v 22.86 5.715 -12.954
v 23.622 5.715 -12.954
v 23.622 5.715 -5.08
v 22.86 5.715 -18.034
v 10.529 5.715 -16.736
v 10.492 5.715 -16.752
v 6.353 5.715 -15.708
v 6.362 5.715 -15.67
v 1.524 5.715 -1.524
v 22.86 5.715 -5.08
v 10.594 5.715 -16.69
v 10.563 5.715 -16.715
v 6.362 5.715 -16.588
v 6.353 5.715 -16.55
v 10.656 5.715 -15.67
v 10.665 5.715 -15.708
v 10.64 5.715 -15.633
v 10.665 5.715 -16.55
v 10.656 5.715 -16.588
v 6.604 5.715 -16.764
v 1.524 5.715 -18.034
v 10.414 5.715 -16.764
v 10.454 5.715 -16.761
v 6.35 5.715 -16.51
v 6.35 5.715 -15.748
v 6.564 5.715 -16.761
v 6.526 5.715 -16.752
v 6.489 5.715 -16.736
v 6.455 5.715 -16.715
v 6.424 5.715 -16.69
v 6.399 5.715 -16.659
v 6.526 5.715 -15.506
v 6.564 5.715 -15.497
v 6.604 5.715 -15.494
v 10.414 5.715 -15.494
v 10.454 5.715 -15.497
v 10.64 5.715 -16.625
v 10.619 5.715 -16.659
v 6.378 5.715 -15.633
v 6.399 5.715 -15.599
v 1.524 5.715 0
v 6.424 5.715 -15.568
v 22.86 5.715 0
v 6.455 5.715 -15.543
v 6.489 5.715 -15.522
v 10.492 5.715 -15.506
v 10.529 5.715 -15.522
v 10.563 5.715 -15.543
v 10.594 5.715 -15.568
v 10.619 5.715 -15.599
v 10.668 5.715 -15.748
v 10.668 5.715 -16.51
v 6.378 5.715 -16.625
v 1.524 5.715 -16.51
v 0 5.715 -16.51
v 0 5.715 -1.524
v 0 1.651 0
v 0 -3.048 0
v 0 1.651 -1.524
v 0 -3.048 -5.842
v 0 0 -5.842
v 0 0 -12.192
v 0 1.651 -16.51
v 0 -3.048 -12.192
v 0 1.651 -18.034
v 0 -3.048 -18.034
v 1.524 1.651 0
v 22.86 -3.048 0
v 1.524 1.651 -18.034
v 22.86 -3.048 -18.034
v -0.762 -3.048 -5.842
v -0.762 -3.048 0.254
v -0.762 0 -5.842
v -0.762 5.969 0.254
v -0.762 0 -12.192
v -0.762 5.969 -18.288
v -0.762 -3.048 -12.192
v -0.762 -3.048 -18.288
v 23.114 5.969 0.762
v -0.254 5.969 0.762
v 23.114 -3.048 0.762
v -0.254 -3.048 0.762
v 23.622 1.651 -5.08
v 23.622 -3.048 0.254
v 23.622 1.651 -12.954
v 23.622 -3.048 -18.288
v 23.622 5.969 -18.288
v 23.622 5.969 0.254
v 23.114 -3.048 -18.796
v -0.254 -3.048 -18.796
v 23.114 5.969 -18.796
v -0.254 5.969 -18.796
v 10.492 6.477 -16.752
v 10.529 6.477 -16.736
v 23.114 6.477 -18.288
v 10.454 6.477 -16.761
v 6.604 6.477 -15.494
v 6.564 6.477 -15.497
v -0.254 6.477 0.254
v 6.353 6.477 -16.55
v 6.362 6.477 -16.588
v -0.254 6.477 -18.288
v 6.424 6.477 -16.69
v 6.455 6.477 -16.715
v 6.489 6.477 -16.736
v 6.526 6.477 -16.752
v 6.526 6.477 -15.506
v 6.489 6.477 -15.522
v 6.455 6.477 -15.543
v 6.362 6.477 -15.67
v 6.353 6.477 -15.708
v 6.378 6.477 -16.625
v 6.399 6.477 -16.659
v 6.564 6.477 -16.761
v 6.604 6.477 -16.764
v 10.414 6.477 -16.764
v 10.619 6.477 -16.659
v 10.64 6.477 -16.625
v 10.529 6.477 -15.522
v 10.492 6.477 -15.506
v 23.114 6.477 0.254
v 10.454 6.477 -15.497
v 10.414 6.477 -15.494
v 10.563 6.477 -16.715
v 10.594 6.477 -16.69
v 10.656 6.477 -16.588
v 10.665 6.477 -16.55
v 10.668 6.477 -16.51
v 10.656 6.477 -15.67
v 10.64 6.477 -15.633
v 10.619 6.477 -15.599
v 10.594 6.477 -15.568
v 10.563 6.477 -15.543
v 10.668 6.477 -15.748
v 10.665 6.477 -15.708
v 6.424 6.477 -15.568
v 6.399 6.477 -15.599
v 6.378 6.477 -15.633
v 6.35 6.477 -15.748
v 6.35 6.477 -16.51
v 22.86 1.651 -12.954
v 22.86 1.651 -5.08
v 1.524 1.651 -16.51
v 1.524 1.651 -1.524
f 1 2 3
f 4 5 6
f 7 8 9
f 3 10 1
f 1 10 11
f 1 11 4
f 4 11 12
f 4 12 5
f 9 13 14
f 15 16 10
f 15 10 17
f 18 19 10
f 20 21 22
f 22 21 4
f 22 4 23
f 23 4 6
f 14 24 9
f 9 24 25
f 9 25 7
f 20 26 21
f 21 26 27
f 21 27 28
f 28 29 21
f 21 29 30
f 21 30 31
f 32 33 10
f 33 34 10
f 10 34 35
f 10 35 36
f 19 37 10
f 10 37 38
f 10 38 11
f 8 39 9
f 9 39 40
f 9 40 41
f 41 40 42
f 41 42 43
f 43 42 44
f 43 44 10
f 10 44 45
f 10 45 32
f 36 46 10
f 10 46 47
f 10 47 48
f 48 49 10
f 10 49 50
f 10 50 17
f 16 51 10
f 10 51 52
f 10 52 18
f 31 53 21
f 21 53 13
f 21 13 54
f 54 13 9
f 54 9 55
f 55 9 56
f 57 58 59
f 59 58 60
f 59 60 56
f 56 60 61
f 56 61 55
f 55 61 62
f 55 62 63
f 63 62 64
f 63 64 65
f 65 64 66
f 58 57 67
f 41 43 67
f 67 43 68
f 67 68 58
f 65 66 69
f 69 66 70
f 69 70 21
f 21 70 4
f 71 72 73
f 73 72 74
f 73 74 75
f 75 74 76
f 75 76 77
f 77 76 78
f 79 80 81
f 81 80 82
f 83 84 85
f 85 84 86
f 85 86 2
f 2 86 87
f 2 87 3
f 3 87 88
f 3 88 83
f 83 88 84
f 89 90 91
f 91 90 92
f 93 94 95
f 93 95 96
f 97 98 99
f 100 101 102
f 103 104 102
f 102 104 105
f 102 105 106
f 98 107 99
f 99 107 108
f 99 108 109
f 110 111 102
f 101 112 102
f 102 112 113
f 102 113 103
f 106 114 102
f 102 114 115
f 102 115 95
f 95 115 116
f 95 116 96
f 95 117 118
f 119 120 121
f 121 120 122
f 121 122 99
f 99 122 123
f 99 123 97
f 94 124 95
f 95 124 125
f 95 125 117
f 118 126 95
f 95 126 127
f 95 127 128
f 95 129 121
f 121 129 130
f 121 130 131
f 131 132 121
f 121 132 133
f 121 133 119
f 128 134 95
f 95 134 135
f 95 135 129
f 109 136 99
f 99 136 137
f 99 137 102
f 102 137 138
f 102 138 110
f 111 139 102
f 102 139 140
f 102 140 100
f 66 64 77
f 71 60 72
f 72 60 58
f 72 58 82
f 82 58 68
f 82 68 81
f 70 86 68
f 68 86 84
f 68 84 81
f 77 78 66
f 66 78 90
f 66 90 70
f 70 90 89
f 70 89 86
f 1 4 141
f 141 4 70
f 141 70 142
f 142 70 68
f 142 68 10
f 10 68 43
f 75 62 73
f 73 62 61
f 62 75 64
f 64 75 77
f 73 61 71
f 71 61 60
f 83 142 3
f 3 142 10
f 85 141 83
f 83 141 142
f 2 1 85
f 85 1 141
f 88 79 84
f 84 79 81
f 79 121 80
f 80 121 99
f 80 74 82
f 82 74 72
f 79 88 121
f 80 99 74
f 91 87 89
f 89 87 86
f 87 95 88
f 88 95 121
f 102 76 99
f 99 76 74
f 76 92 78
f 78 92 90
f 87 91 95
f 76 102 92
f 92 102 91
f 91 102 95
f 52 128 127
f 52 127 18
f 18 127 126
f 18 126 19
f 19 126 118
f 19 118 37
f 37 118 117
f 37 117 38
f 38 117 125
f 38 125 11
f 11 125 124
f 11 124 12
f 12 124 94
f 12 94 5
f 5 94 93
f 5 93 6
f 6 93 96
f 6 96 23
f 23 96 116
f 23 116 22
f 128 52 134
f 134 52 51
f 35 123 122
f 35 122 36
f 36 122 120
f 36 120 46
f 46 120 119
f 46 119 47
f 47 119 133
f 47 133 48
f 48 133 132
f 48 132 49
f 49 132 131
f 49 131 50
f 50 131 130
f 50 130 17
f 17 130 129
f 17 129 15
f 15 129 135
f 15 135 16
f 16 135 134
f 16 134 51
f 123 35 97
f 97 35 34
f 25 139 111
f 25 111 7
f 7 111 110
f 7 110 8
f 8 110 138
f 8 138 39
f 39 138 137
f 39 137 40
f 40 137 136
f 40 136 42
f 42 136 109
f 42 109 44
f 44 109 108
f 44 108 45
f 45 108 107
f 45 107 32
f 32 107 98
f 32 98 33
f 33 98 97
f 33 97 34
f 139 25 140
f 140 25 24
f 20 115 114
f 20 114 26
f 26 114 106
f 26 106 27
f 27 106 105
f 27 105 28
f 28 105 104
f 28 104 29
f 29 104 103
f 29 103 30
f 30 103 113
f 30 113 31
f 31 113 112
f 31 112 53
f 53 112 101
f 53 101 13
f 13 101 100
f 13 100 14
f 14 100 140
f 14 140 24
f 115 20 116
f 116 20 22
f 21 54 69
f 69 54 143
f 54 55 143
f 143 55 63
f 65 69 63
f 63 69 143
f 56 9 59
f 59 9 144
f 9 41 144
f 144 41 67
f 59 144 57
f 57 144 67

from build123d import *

# Parameters (mm, degrees)
SKETCH2_W           = 24.384
SKETCH2_H           = 19.558
BOSS_EXTRUDE1_DEPTH = 6.477
SKETCH1_W           = 22.86
SKETCH1_H           = 18.034
CUT_EXTRUDE1_DEPTH  = 5.715
SKETCH3_W           = 24.384
SKETCH3_H           = 19.558
SKETCH3_W_2         = 22.86
SKETCH3_H_2         = 18.034
BOSS_EXTRUDE2_DEPTH = 3.048
CUT_EXTRUDE2_REACH  = 33.461
SKETCH4_W           = 6.35
SKETCH4_H           = 6.096
CUT_EXTRUDE3_REACH  = 33.461
SKETCH5_W           = 7.874
SKETCH5_H           = 4.064
CHAMFER1_SIZE       = 0.508
CUT_EXTRUDE4_REACH  = 33.655
SKETCH7_W           = 1.524
SKETCH7_H           = 1.524
BOSS_EXTRUDE3_DEPTH = 4.064


with BuildPart() as part:
    # Sketch2 → Boss-Extrude1 (new body)
    with BuildSketch(Plane(origin=(0, 0, 0), x_dir=(1, 0, 0), z_dir=(0, 1, 0))):
        with Locations((11.43, 9.017)):
            Rectangle(SKETCH2_W, SKETCH2_H)
    extrude(amount=BOSS_EXTRUDE1_DEPTH)

    # Sketch1 → Cut-Extrude1 (cut)
    with BuildSketch(Plane(origin=(0, 0, 0), x_dir=(1, 0, 0), z_dir=(0, 1, 0))):
        with Locations((11.43, 9.017)):
            Rectangle(SKETCH1_W, SKETCH1_H)
    extrude(amount=CUT_EXTRUDE1_DEPTH, mode=Mode.SUBTRACT)

    # Sketch3 → Boss-Extrude2 (add)
    with BuildSketch(Plane.XZ):
        with Locations((11.43, -9.017)):
            Rectangle(SKETCH3_W, SKETCH3_H)
        with Locations((11.43, -9.017)):
            Rectangle(SKETCH3_W_2, SKETCH3_H_2, mode=Mode.SUBTRACT)
    extrude(amount=BOSS_EXTRUDE2_DEPTH)

    # Sketch4 → Cut-Extrude2 (cut, up to next)
    with BuildSketch(Plane.ZY.offset(0.762), mode=Mode.PRIVATE) as cut_extrude2_sk1:
        with Locations((-9.017, -3.048)):
            Rectangle(SKETCH4_W, SKETCH4_H)
    cut_extrude2_tool1 = extrude(cut_extrude2_sk1.sketch, amount=-CUT_EXTRUDE2_REACH, mode=Mode.PRIVATE) & part.part
    add(cut_extrude2_tool1.solids().sort_by_distance((-0.762, -3.048, -9.017))[0], mode=Mode.SUBTRACT)

    # Sketch5 → Cut-Extrude3 (cut, up to next)
    with BuildSketch(Plane(origin=(23.622, 0, 0), x_dir=(0, 0, -1), z_dir=(1, 0, 0)), mode=Mode.PRIVATE) as cut_extrude3_sk1:
        with Locations((9.017, 3.683)):
            Rectangle(SKETCH5_W, SKETCH5_H)
    cut_extrude3_tool1 = extrude(cut_extrude3_sk1.sketch, amount=-CUT_EXTRUDE3_REACH, mode=Mode.PRIVATE) & part.part
    add(cut_extrude3_tool1.solids().sort_by_distance((23.622, 3.683, -9.017))[0], mode=Mode.SUBTRACT)

    # Chamfer1
    chamfer1_edges = [part.edges().sort_by_distance(p)[0] for p in [
        (23.622, 6.477, -9.017),
        (11.43, 6.477, -18.796),
        (-0.762, 6.477, -9.017),
        (11.43, 6.477, 0.762),
        (-0.762, 1.7145, -18.796),
        (23.622, 1.7145, -18.796),
        (23.622, 1.7145, 0.762),
        (-0.762, 1.7145, 0.762),
    ]]
    chamfer(chamfer1_edges, length=CHAMFER1_SIZE)

    # Sketch6 → Cut-Extrude4 (cut, up to next)
    with BuildSketch(Plane(origin=(0, 6.477, 0), x_dir=(1, 0, 0), z_dir=(0, 1, 0)), mode=Mode.PRIVATE) as cut_extrude4_sk1:
        with BuildLine():
            Line((6.604, 16.764), (10.414, 16.764))
            ThreePointArc((10.414, 16.764), (10.593605122, 16.689605122), (10.668, 16.51))
            Line((10.668, 16.51), (10.668, 15.748))
            ThreePointArc((10.668, 15.748), (10.593605122, 15.568394878), (10.414, 15.494))
            Line((10.414, 15.494), (6.604, 15.494))
            ThreePointArc((6.604, 15.494), (6.424394878, 15.568394878), (6.35, 15.748))
            Line((6.35, 15.748), (6.35, 16.51))
            ThreePointArc((6.35, 16.51), (6.424394878, 16.689605122), (6.604, 16.764))
        make_face()
    cut_extrude4_tool1 = extrude(cut_extrude4_sk1.sketch, amount=-CUT_EXTRUDE4_REACH, mode=Mode.PRIVATE) & part.part
    add(cut_extrude4_tool1.solids().sort_by_distance((8.509, 6.477, -16.129))[0], mode=Mode.SUBTRACT)

    # Sketch7 → Boss-Extrude3 (add)
    with BuildSketch(Plane.XZ.offset(-5.715)):
        with Locations((0.762, -17.272)):
            Rectangle(SKETCH7_W, SKETCH7_H)
        with Locations((0.762, -0.762)):
            Rectangle(SKETCH7_W, SKETCH7_H)
    extrude(amount=BOSS_EXTRUDE3_DEPTH)


solid = part.part
